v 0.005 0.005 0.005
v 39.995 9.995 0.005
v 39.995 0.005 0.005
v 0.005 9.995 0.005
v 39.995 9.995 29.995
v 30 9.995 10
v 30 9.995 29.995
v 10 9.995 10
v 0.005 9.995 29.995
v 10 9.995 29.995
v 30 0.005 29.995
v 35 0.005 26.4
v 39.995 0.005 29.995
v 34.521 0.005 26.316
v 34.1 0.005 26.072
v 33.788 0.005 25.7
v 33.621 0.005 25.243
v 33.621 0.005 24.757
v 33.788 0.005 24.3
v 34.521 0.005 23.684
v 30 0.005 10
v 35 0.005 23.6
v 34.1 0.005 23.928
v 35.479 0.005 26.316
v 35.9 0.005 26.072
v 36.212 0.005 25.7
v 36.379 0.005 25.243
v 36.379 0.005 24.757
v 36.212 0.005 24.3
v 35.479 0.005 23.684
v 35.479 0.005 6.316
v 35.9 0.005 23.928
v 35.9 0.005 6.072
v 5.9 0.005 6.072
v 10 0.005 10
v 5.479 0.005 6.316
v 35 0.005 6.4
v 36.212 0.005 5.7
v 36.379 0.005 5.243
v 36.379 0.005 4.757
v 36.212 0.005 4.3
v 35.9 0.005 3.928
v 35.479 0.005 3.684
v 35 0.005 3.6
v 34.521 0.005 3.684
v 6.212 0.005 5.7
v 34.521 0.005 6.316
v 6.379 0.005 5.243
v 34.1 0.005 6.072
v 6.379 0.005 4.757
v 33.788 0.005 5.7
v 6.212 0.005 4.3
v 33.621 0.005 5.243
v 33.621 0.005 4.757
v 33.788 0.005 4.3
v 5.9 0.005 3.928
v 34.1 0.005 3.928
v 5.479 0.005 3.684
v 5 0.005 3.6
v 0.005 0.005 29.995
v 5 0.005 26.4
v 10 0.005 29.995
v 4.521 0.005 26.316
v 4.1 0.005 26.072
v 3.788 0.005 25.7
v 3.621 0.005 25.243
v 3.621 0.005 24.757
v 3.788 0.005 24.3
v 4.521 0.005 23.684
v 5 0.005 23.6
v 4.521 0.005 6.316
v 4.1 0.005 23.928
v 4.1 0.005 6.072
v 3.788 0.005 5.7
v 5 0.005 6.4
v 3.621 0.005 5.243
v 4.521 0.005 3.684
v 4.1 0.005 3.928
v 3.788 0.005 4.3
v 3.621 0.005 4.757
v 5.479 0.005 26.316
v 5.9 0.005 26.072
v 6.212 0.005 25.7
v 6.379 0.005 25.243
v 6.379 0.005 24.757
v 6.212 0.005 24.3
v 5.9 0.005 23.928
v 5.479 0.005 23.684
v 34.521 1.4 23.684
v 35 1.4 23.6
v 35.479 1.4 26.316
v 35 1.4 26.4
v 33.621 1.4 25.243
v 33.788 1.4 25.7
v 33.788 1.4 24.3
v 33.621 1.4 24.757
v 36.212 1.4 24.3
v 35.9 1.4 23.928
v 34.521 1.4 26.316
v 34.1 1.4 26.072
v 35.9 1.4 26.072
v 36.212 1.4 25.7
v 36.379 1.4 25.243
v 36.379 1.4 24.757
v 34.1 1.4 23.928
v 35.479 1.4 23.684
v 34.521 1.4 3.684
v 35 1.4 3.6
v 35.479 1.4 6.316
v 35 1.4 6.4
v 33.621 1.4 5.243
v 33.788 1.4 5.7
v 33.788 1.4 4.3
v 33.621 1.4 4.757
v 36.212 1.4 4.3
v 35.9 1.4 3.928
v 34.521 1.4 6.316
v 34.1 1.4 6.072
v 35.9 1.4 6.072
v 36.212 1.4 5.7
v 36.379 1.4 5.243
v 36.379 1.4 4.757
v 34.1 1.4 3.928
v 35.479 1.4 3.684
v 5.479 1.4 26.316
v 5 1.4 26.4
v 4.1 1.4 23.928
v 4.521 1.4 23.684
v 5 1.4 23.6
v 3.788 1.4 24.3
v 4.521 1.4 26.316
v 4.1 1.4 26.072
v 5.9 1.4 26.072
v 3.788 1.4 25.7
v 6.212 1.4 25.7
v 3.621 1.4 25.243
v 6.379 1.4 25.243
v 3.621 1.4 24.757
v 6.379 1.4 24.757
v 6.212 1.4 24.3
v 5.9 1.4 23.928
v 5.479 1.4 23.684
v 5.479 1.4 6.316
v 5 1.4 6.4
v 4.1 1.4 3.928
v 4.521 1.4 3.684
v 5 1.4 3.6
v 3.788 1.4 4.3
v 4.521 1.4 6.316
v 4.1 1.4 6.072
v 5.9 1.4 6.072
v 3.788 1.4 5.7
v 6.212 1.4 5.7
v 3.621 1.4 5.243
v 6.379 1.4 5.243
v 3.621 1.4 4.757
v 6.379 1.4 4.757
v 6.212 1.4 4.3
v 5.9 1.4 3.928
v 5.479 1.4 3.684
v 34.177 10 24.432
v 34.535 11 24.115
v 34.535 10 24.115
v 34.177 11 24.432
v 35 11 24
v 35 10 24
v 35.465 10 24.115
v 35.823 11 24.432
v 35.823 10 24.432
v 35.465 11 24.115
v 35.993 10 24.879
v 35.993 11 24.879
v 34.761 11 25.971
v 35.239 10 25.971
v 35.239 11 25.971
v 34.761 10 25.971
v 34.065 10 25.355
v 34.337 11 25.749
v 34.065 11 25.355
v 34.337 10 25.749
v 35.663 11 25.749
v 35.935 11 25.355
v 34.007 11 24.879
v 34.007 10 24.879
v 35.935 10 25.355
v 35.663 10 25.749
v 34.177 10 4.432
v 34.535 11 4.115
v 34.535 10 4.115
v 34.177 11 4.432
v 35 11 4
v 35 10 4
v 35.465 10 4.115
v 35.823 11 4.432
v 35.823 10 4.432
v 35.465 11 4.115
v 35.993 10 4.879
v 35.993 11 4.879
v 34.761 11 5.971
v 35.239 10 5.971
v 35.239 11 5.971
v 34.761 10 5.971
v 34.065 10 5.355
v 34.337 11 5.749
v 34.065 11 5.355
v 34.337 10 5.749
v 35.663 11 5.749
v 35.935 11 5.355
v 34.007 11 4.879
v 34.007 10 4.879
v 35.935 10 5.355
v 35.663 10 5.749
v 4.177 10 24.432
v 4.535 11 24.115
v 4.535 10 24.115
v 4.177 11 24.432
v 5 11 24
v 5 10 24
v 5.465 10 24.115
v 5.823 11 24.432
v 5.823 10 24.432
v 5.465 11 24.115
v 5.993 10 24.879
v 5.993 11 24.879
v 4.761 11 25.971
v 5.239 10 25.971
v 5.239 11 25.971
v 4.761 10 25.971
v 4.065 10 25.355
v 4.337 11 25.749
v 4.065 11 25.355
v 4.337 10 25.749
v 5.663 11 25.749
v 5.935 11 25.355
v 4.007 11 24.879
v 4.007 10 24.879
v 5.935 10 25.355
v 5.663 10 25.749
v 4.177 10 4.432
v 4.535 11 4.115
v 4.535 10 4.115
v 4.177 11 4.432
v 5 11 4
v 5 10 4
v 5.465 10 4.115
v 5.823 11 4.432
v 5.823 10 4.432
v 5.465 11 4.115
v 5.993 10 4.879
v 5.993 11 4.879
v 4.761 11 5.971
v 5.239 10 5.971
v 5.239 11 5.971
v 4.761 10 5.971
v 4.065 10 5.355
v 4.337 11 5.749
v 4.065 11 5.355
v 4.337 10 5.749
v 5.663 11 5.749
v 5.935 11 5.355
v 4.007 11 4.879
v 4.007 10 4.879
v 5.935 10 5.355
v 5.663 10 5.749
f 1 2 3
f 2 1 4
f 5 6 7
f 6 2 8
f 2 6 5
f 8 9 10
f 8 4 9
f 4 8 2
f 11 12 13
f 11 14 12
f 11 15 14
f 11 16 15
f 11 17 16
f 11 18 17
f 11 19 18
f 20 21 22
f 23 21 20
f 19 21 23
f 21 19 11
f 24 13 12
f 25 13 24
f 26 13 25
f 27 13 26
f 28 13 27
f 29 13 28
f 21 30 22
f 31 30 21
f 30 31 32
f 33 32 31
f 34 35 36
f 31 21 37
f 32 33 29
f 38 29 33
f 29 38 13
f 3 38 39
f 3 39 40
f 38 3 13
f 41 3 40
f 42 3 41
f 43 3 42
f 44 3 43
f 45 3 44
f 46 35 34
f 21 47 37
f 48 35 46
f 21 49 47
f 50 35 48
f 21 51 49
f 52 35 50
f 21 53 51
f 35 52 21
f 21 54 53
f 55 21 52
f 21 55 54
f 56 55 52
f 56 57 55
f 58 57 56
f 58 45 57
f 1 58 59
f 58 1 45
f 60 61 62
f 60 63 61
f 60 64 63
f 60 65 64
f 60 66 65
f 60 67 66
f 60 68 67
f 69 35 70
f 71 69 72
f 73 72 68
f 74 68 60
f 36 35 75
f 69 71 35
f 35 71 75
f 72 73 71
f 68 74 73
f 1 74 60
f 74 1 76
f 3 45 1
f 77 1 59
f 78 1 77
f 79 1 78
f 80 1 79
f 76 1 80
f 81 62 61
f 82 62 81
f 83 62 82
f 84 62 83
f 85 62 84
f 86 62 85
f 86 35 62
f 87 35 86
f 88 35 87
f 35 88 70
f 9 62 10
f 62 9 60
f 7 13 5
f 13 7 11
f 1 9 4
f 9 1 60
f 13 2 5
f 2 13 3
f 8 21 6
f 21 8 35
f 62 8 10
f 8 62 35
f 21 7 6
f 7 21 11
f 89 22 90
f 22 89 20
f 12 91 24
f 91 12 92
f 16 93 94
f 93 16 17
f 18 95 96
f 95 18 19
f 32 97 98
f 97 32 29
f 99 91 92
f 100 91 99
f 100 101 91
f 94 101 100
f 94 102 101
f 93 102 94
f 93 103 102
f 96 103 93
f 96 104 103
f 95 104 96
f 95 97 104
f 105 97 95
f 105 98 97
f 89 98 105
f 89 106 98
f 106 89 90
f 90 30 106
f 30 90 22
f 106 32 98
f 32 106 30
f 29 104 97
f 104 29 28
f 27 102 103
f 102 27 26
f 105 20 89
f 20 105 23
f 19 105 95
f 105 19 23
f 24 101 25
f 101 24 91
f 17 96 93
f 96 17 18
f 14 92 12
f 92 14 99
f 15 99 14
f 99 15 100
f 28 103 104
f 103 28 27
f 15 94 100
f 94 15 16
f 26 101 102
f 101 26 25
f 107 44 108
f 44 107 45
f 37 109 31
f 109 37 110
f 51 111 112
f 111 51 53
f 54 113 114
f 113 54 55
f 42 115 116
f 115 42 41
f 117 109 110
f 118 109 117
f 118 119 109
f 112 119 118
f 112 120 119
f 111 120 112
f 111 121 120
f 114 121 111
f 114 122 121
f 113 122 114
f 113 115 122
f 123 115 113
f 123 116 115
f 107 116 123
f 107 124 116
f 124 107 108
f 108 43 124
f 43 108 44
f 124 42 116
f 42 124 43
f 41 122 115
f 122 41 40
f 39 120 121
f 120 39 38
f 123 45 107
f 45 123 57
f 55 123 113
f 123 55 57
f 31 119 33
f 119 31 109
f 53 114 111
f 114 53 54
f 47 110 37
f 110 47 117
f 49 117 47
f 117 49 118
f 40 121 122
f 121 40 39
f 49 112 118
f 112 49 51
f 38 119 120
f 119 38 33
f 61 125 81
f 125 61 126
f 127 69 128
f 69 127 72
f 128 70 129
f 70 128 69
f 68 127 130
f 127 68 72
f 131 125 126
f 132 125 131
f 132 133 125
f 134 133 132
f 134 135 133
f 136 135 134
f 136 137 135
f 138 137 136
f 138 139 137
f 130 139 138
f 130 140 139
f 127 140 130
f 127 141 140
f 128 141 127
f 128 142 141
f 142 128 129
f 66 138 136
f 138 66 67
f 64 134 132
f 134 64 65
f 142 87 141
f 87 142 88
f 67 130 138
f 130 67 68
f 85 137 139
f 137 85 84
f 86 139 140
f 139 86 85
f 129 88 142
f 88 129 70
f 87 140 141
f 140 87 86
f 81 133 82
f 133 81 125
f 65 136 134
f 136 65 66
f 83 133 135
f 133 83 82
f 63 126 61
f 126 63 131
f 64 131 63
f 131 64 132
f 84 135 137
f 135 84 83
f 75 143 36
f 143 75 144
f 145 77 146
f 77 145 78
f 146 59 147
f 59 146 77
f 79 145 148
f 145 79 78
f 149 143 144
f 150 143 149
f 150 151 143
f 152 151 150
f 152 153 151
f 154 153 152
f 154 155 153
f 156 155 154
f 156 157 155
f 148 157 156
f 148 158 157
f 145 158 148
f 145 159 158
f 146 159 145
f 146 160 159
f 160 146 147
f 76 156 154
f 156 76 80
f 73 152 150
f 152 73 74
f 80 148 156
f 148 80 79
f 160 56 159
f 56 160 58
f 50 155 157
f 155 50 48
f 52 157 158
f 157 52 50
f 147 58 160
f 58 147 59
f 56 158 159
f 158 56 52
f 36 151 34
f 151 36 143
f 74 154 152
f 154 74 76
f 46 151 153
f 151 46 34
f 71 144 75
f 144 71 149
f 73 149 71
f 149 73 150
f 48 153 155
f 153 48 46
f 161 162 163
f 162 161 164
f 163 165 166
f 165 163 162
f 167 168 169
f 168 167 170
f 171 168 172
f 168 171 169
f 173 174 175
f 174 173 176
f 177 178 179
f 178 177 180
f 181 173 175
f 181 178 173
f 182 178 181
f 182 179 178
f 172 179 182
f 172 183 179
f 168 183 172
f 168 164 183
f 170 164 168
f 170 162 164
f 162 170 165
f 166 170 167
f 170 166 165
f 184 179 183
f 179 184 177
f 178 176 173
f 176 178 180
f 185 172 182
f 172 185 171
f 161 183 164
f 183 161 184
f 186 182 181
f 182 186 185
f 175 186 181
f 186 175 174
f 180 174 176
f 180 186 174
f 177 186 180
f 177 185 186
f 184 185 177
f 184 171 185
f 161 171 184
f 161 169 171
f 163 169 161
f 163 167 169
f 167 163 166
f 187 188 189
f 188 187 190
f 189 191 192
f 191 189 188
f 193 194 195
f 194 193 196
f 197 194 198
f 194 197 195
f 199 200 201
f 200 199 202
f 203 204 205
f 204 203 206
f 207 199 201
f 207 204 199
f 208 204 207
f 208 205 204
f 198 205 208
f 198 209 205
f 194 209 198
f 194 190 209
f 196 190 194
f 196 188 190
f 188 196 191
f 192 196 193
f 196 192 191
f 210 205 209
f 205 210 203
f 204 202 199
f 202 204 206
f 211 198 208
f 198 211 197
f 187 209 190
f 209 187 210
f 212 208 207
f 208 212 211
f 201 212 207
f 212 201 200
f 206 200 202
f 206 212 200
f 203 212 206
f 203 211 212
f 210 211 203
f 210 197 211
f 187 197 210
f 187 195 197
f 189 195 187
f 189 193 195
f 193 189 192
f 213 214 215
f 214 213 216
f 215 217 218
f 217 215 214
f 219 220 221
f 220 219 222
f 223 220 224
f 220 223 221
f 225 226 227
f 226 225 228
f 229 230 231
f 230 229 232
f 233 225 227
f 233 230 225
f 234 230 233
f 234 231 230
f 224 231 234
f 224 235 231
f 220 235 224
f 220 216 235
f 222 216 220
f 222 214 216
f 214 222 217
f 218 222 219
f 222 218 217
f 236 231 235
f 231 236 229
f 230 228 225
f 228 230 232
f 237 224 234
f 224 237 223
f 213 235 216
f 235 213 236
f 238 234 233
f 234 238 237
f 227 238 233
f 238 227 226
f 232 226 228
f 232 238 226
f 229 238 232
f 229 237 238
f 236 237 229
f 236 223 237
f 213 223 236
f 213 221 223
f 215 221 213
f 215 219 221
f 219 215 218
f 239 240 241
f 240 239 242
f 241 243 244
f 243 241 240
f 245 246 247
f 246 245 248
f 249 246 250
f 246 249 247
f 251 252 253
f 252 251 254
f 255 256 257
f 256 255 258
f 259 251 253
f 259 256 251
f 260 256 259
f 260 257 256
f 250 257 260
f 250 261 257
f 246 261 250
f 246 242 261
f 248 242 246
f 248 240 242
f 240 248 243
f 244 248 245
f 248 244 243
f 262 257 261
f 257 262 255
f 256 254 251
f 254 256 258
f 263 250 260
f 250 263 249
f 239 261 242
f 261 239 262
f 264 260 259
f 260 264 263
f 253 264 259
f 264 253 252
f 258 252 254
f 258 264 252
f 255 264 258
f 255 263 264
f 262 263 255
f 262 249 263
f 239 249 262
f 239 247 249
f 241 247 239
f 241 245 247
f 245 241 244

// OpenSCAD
//Spacer for sample holder. Can be used to elevate sample holder, which increases the magniciation of the sample. Useful for smaller crystals. Can also be stacked.  
// Doug Juers 2025.
//
// Can be printed without supports.
//
$fa=1;
$fs=.5;
spacer_width=30;
spacer_length=40;
spacer_height=10;
hole_radius=5;
post_radius=1;
post_height=1;
buffer=0.4;
tolerance=0.01;

module whole(){
union(){
difference(){
    translate([tolerance/2,tolerance/2,tolerance/2])cube([spacer_width-tolerance,spacer_length-tolerance,spacer_height-tolerance]);
    translate([0,10,0,])cube([spacer_width-10,spacer_length-20,spacer_height]);// Remove central block
    //Make holes on bottom
//    translate([5,5,0])cylinder([post_radius+1,post_height+1]);
    translate([5,5,0])cylinder(h=post_height+buffer,r=post_radius+buffer);
    translate([spacer_width-5,5,0])cylinder(h=post_height+buffer,r=post_radius+buffer);
    translate([5,spacer_length-5,0])cylinder(h=post_height+buffer,r=post_radius+buffer);
    translate([spacer_width-5,spacer_length-5,0])cylinder(h=post_height+buffer,r=post_radius+buffer); 
}  
    //Make posts on top
    translate([5,5,spacer_height])cylinder(h=post_height+0.0,r=post_radius+0.0);
    translate([spacer_width-5,5,spacer_height])cylinder(h=post_height+0.0,r=post_radius+0.0);
    translate([5,spacer_length-5,spacer_height])cylinder(h=post_height+0.0,r=post_radius+0.0);
    translate([spacer_width-5,spacer_length-5,spacer_height])cylinder(h=post_height+0.0,r=post_radius+0.0);
}}
translate([spacer_length,0,spacer_width])rotate([-90,90,0])whole();
